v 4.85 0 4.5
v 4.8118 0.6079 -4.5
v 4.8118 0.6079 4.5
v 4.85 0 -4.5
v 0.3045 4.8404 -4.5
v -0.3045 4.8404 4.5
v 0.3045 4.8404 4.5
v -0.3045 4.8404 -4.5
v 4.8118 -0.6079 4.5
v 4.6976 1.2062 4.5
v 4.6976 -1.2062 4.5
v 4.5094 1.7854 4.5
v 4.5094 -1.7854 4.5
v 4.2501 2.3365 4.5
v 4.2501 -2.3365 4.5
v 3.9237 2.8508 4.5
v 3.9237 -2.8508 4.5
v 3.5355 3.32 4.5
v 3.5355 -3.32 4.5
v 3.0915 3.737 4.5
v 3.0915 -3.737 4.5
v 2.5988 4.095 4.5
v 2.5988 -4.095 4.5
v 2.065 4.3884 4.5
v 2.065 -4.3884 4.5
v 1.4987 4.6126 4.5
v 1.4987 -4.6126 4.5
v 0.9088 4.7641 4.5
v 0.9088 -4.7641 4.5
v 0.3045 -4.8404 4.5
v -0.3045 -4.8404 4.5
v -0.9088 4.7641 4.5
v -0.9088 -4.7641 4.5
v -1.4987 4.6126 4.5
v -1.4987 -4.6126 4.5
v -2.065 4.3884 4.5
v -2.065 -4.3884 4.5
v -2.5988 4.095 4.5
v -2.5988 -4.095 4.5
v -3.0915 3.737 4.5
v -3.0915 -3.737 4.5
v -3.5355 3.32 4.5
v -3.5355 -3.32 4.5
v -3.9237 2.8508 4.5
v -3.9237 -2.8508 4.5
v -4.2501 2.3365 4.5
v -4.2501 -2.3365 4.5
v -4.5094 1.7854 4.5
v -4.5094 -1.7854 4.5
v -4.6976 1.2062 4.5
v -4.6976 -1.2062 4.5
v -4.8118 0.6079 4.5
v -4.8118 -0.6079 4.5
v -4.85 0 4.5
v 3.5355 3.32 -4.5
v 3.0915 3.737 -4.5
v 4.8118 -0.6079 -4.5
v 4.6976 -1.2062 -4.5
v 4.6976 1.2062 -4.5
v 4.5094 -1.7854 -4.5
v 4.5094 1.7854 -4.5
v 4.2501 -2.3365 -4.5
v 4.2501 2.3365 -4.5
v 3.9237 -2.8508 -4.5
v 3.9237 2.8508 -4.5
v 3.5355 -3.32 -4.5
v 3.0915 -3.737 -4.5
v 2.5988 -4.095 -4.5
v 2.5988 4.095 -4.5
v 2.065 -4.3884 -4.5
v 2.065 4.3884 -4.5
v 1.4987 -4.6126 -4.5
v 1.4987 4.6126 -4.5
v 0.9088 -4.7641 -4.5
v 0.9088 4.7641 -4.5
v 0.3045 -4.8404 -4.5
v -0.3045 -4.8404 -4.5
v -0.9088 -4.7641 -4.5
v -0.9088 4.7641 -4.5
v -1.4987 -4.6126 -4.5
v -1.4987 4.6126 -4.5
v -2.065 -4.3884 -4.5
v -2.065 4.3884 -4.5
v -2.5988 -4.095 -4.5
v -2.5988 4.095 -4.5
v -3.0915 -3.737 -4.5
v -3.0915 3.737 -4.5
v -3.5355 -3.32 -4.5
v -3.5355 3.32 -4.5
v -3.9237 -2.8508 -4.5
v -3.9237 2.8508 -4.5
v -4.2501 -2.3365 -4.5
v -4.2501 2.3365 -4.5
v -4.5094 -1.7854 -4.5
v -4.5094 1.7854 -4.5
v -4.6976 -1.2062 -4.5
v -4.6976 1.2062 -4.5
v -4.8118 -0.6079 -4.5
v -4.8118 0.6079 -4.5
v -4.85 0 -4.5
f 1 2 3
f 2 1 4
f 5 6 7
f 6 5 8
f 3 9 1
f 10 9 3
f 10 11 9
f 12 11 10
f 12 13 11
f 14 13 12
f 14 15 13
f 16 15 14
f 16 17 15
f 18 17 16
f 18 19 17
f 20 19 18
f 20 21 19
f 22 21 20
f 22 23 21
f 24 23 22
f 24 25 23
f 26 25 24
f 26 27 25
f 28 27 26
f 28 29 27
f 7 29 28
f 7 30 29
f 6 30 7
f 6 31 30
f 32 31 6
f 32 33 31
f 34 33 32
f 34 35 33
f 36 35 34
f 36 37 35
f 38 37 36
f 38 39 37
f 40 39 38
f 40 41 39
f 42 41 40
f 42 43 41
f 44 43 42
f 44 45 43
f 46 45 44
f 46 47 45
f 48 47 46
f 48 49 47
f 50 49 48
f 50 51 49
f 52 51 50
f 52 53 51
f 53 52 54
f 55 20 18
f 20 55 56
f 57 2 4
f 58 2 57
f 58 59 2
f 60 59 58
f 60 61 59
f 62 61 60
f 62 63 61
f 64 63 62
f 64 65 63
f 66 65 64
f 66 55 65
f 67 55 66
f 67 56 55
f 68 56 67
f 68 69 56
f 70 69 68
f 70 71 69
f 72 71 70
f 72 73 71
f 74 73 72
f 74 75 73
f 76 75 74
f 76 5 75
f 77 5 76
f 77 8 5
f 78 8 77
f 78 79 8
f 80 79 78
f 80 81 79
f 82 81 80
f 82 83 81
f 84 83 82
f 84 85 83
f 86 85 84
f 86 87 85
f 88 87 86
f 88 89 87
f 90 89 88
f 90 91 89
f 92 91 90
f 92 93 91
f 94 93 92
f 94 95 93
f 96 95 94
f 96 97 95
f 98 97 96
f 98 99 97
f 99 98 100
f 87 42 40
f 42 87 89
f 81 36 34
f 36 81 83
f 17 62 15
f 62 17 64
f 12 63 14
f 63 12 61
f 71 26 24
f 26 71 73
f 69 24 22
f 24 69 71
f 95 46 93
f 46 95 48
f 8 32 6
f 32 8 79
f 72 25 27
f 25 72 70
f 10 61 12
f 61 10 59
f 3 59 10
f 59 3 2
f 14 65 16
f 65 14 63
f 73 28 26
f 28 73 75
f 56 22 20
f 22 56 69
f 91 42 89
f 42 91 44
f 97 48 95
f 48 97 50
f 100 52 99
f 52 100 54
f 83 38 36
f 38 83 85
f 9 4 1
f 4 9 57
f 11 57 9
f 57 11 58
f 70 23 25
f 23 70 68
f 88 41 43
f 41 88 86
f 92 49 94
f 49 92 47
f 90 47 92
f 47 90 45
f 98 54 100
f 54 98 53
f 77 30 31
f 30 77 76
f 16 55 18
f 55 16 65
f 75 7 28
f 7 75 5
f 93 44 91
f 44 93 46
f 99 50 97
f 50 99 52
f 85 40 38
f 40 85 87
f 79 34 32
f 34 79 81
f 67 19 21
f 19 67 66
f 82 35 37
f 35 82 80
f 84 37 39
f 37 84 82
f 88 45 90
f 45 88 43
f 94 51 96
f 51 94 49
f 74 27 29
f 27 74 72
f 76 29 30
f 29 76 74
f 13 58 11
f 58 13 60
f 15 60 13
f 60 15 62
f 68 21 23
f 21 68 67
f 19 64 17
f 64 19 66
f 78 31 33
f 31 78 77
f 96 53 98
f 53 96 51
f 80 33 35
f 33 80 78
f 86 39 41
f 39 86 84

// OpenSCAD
$fn = 50;


difference() {
	union() {
		translate(v = [0, 0, -4.5000000000]) {
			cylinder(h = 9, r = 4.8500000000);
		}
	}
	union() {
		translate(v = [0, 0, -100.0000000000]) {
			cylinder(h = 200, r = 0);
		}
	}
}
